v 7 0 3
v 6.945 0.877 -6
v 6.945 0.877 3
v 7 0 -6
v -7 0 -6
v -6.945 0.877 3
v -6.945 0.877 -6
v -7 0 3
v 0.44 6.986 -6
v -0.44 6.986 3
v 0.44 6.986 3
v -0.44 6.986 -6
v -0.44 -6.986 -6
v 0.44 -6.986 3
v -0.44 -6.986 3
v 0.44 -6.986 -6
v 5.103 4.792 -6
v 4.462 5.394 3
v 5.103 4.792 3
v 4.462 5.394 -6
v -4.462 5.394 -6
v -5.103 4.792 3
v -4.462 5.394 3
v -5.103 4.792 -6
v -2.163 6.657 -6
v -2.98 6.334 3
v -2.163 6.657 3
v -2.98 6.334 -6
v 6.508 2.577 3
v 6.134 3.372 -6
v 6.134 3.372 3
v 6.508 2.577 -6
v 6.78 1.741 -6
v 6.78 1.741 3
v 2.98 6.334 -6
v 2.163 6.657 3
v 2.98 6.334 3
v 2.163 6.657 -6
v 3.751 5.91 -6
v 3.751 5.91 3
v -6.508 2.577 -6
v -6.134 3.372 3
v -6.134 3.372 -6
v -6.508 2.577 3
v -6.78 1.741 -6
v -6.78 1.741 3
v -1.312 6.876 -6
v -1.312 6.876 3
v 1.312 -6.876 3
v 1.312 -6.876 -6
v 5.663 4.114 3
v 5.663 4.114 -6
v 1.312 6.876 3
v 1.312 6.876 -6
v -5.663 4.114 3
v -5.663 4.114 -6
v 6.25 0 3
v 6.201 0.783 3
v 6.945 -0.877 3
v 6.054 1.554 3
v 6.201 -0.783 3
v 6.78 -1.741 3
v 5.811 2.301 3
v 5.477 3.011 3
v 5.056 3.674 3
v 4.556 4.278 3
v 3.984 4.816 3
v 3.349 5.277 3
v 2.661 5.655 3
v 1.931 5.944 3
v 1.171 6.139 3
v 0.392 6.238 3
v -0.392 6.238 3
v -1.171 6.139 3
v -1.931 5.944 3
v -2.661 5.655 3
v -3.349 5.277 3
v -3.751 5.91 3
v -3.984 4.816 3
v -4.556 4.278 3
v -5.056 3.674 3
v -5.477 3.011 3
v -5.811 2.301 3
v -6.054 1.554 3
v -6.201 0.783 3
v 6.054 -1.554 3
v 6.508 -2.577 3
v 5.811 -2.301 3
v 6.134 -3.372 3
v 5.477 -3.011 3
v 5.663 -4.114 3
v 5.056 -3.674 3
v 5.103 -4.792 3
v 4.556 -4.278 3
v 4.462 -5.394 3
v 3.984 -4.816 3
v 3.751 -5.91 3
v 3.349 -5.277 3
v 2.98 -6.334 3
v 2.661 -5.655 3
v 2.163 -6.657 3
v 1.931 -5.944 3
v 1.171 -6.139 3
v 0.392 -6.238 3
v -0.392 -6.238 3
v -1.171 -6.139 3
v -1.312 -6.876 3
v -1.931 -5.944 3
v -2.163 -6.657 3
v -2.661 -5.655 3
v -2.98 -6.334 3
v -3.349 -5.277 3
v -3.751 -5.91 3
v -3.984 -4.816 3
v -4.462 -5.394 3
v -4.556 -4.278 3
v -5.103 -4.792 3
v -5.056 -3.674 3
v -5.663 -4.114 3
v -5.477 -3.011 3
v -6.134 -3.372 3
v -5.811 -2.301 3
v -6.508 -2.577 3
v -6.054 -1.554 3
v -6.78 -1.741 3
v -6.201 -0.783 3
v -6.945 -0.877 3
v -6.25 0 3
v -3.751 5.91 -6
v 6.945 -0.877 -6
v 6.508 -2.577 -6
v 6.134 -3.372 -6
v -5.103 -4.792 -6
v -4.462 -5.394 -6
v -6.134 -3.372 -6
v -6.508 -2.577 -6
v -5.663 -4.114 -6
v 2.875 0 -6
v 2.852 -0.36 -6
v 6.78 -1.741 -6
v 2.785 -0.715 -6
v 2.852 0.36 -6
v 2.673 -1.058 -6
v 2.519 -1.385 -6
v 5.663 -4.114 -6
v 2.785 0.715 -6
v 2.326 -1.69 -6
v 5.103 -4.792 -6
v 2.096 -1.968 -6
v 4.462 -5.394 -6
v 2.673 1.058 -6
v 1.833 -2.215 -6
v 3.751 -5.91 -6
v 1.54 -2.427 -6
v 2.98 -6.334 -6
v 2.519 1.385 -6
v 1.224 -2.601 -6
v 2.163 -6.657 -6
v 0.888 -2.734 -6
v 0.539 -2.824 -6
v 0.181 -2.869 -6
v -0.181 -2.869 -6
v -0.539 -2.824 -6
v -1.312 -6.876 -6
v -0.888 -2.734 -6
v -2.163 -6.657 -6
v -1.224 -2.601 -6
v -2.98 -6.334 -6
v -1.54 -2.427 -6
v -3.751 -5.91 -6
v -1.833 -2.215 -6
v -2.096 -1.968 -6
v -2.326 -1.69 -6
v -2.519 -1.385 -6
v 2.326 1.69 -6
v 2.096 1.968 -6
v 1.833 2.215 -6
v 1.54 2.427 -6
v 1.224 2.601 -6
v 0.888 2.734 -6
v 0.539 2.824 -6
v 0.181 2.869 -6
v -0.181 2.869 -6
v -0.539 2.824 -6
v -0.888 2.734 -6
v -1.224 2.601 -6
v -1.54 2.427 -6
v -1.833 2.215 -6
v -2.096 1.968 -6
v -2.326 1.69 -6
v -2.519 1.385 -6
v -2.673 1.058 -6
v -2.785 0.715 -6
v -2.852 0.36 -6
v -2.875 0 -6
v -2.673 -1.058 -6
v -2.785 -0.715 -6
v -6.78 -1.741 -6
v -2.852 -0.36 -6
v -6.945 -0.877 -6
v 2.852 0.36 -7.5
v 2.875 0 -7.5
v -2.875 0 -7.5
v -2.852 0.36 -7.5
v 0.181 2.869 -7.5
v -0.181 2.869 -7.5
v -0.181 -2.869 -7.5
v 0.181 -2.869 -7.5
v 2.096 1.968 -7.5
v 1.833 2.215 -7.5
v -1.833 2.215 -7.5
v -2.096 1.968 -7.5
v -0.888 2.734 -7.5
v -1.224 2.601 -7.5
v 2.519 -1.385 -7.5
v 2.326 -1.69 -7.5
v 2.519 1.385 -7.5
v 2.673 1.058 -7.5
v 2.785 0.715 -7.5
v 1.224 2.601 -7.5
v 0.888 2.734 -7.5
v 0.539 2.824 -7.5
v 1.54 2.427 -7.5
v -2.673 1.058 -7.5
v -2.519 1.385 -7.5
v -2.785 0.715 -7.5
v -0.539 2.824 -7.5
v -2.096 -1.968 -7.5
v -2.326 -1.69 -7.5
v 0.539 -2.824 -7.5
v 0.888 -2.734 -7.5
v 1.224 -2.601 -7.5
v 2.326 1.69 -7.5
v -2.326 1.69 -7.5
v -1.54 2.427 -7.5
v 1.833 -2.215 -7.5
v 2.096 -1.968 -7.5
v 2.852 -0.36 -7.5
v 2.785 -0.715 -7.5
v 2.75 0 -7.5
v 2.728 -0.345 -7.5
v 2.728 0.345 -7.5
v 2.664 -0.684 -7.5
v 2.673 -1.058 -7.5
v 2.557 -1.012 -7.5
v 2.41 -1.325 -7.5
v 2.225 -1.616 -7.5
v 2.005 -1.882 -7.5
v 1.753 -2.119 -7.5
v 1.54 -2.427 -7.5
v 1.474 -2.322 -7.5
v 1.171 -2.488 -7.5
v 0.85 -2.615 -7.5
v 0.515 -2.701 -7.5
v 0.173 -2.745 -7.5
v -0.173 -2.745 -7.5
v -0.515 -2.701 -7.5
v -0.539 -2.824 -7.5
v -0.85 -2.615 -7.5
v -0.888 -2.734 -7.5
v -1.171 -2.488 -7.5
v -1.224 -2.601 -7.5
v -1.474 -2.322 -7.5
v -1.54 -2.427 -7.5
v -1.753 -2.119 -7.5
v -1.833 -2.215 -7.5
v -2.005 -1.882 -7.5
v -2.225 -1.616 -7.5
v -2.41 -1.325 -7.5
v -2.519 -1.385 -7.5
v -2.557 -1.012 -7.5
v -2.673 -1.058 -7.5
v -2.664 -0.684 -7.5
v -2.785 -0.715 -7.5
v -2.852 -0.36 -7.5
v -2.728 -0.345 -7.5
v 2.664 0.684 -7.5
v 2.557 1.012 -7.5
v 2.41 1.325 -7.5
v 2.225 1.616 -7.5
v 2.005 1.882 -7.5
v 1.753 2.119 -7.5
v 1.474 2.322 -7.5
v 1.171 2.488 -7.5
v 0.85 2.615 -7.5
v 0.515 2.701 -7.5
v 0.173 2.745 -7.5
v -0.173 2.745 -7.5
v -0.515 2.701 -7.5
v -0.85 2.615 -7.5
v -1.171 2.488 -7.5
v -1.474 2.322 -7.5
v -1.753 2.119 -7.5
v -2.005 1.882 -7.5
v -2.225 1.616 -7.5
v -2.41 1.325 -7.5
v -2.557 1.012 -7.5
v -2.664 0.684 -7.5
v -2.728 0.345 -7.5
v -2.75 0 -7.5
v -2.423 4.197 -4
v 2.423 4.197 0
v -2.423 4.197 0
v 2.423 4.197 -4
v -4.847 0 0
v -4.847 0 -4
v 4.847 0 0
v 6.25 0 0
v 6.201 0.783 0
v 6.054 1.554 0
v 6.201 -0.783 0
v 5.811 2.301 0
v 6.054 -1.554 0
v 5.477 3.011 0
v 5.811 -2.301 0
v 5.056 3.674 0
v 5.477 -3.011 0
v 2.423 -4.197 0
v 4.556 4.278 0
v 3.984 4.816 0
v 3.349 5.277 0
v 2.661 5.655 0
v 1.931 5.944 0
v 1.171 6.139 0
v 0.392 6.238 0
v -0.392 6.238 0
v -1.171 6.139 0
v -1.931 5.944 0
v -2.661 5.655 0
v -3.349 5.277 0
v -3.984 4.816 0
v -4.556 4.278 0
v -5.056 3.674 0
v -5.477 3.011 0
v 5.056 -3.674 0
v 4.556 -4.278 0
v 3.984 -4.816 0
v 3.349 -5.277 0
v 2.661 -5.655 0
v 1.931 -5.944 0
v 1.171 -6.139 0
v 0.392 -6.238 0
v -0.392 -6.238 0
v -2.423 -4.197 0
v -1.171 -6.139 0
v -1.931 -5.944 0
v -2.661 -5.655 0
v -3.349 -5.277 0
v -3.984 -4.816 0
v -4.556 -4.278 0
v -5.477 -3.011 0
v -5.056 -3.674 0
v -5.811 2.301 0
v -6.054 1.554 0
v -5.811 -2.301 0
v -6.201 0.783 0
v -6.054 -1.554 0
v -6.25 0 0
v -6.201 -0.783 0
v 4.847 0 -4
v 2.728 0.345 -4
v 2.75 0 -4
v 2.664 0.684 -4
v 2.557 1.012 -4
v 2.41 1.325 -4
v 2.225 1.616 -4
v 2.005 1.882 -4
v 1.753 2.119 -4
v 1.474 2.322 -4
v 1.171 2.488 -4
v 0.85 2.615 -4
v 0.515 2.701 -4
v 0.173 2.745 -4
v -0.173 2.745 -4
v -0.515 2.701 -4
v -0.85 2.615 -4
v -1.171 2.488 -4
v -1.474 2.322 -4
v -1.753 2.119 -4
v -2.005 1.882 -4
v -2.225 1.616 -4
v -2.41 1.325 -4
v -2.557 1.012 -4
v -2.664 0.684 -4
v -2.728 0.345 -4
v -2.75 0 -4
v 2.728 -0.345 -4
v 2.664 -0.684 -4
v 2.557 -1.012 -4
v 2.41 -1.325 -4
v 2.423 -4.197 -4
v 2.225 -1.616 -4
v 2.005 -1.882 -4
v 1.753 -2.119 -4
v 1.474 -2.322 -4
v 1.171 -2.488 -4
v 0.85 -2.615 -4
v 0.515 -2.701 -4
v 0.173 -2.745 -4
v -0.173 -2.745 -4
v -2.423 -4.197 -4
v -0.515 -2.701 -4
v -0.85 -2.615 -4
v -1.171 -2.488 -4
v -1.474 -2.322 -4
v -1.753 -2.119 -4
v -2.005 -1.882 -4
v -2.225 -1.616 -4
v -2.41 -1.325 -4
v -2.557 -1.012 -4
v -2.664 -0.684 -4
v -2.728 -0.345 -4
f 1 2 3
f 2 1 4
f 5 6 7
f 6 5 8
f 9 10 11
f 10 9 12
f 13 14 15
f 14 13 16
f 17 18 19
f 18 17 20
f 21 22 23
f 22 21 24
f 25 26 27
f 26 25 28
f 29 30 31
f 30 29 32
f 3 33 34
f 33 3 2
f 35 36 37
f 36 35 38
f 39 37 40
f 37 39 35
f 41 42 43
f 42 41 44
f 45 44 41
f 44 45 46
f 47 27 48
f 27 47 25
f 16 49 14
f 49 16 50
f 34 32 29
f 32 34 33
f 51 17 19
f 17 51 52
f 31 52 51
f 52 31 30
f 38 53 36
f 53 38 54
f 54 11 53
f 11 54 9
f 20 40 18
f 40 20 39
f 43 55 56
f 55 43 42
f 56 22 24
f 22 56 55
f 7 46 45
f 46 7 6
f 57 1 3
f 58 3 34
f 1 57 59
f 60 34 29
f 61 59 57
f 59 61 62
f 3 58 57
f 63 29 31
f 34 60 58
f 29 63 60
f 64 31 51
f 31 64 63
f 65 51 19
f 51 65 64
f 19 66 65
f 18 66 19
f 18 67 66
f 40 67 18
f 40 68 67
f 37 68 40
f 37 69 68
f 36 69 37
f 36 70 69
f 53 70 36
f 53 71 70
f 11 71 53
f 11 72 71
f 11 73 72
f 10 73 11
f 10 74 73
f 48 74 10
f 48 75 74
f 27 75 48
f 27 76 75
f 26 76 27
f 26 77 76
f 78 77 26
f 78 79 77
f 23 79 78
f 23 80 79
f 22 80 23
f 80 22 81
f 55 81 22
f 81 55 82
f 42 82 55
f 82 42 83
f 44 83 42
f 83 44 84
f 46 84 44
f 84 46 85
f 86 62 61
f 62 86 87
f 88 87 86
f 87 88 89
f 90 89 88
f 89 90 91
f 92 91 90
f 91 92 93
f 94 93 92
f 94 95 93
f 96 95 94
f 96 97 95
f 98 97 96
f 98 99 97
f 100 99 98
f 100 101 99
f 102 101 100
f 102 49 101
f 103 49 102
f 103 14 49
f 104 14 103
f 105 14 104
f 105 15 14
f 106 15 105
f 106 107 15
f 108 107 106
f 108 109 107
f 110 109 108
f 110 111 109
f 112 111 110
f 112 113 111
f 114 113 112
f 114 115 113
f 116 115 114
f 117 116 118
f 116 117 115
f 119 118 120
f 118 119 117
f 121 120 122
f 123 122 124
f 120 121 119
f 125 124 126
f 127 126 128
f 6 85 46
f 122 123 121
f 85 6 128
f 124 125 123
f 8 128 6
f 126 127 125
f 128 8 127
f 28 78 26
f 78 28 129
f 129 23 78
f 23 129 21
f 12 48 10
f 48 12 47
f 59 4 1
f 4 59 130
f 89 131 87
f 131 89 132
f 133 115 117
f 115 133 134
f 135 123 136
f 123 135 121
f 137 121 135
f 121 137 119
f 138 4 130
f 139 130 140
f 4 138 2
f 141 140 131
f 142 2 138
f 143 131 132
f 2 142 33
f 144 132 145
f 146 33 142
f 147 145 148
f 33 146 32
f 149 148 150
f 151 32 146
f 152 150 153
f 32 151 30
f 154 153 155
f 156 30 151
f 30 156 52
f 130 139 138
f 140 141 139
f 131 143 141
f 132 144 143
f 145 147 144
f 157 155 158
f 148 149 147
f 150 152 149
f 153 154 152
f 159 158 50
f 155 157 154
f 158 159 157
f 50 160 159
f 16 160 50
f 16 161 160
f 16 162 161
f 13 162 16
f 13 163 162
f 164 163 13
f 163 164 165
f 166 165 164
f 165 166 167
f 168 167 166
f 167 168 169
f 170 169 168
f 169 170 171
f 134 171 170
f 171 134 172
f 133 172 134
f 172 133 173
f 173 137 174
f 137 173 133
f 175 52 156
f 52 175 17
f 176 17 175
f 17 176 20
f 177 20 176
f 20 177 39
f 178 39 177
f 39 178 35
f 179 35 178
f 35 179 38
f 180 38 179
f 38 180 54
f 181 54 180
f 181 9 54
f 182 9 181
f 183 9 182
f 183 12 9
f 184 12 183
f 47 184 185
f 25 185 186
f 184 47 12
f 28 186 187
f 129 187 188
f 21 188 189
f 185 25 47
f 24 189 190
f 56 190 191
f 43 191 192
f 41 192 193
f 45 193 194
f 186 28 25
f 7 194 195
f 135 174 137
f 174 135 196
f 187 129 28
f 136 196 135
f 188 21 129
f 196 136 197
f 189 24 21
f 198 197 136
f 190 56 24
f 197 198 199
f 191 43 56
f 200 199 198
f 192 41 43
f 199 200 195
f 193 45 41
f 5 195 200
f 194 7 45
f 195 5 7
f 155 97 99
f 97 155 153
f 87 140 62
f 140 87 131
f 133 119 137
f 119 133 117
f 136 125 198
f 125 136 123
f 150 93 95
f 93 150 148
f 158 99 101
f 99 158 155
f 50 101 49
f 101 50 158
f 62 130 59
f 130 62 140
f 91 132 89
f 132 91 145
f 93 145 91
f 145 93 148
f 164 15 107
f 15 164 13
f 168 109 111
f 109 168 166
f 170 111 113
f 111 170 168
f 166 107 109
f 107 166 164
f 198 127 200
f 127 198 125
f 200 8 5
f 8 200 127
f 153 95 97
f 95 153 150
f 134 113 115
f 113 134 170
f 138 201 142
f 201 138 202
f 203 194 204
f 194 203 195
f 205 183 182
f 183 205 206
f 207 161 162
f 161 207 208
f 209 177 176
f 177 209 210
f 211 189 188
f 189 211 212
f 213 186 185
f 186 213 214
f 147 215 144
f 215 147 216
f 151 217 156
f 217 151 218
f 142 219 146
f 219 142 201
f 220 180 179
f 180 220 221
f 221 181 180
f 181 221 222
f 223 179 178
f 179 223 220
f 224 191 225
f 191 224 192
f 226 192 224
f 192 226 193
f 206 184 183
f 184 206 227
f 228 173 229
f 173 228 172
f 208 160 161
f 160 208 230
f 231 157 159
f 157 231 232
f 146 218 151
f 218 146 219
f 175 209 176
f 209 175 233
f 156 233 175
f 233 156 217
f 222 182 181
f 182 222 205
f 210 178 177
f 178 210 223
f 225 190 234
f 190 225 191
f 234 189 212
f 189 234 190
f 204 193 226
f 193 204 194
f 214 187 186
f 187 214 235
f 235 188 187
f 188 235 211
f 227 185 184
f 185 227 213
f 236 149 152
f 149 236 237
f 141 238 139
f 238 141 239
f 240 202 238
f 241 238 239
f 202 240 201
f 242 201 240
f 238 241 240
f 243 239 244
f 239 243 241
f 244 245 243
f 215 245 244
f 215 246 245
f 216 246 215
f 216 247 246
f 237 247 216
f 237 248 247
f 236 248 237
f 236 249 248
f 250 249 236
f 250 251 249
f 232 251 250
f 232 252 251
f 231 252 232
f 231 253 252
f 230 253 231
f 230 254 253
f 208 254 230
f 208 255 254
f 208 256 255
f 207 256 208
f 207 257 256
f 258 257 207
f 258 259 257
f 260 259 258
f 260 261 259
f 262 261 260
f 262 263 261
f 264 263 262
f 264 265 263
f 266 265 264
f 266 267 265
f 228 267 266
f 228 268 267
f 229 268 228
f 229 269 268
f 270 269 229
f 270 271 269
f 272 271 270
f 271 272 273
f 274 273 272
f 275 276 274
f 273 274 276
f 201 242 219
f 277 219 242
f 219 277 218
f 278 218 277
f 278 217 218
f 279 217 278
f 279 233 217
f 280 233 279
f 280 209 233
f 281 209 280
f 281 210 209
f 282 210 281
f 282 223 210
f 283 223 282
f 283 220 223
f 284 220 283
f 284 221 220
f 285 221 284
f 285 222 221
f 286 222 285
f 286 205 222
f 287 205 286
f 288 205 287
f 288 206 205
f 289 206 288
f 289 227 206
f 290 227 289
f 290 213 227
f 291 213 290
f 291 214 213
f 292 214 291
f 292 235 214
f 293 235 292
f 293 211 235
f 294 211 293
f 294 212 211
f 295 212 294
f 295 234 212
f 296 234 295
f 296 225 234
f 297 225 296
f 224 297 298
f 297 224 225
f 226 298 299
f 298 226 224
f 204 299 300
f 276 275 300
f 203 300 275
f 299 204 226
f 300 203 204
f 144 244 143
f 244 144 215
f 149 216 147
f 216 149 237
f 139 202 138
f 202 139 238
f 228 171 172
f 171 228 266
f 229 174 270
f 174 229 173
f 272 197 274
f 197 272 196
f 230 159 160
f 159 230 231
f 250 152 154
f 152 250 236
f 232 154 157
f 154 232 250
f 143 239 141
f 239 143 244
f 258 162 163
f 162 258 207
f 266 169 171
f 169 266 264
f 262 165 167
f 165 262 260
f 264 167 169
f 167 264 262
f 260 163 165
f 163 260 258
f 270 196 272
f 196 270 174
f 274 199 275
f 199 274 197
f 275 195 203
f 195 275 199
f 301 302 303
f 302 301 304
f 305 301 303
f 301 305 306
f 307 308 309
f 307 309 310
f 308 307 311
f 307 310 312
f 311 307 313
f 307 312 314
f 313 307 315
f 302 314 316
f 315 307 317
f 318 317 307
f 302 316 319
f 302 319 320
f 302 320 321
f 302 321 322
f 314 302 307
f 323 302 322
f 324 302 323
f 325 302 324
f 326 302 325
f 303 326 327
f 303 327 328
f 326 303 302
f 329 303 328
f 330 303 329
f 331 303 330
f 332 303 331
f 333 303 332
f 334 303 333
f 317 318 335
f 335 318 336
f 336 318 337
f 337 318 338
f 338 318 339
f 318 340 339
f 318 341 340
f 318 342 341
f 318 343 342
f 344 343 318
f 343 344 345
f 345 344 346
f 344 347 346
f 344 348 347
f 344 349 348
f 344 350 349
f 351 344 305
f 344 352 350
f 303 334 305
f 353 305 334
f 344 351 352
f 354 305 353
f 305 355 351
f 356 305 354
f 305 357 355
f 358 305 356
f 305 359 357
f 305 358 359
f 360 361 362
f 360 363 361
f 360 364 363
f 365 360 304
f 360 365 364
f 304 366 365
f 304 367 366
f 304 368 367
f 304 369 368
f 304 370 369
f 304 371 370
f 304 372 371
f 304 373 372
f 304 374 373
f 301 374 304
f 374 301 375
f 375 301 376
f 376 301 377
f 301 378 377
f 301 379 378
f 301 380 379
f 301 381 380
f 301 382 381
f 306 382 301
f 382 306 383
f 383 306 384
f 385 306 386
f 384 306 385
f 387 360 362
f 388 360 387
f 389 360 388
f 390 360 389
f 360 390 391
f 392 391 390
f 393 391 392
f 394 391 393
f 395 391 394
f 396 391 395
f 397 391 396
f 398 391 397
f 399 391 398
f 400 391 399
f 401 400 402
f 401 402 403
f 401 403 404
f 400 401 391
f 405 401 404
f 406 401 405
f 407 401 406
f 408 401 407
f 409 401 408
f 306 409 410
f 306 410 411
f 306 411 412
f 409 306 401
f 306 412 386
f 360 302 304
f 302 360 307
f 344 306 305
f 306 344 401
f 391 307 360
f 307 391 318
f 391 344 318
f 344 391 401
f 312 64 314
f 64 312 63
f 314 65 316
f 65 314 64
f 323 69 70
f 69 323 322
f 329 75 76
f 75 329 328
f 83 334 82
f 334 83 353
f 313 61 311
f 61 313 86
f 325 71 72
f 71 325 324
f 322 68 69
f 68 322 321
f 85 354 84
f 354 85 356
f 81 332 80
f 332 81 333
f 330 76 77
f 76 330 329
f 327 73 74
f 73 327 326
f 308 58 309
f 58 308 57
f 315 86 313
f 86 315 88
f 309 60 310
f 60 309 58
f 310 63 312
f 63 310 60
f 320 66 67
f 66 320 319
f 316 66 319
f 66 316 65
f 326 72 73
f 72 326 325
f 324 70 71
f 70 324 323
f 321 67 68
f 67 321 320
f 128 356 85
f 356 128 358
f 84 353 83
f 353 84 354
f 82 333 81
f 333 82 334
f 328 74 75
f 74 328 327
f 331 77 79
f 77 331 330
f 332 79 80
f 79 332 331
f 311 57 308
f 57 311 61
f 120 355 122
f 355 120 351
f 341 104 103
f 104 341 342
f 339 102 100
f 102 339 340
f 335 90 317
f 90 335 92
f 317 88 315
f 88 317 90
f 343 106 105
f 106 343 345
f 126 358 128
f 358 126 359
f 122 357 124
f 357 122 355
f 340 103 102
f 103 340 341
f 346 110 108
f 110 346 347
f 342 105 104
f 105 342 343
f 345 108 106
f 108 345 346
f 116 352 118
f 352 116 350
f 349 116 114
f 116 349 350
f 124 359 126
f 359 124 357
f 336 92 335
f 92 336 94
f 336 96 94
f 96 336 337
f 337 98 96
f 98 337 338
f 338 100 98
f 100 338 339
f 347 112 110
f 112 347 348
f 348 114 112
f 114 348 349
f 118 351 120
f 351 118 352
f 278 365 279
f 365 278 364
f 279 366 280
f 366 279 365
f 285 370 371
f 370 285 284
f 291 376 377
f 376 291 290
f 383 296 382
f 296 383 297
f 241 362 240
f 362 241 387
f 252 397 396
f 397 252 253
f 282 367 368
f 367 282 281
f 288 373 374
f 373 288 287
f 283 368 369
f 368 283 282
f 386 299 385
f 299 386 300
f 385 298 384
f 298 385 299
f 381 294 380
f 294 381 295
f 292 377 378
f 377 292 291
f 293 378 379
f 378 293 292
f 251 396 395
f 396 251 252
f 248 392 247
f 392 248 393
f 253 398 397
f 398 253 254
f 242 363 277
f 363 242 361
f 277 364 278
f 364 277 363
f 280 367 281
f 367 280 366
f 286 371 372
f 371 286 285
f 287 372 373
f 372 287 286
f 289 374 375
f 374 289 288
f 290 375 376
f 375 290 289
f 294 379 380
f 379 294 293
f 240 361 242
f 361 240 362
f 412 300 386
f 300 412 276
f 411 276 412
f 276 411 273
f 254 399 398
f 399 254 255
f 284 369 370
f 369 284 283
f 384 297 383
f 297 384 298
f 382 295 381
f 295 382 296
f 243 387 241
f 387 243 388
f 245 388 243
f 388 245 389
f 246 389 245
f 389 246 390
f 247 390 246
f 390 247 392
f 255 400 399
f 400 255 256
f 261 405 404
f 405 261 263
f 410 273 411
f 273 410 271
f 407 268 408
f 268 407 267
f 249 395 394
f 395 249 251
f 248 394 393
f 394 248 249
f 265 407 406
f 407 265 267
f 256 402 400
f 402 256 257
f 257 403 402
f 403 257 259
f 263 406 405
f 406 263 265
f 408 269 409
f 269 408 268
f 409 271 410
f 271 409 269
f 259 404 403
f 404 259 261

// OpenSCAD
$fn = 50;

difference() {
	union() {
		translate(v = [0, 0, -6.0]) {
			cylinder(h = 9.0, r = 7.0);
		}
		#translate(v = [0, 0, -7.5]) {
			cylinder(h = 7.5, r = 2.875);
		}
	}
	union() {
		translate(v = [0, 0, 0]) {
			rotate(a = [0, 0, 0]) {
				difference() {
					union() {
						translate(v = [0, 0, -4]) {
							linear_extrude(height = 4) {
								polygon(points = [[4.8468, 0.0], [2.4234000000000004, 4.197451927062417], [-2.423399999999999, 4.197451927062417], [-4.8468, 5.935618106107392e-16], [-2.423400000000002, -4.197451927062416], [2.423399999999997, -4.197451927062419]]);
							}
						}
					}
					union();
				}
			}
		}
		#cylinder(h = 3, r = 6.25);
		#translate(v = [0, 0, -100.0]) {
			cylinder(h = 200, r = 2.75);
		}
	}
}
